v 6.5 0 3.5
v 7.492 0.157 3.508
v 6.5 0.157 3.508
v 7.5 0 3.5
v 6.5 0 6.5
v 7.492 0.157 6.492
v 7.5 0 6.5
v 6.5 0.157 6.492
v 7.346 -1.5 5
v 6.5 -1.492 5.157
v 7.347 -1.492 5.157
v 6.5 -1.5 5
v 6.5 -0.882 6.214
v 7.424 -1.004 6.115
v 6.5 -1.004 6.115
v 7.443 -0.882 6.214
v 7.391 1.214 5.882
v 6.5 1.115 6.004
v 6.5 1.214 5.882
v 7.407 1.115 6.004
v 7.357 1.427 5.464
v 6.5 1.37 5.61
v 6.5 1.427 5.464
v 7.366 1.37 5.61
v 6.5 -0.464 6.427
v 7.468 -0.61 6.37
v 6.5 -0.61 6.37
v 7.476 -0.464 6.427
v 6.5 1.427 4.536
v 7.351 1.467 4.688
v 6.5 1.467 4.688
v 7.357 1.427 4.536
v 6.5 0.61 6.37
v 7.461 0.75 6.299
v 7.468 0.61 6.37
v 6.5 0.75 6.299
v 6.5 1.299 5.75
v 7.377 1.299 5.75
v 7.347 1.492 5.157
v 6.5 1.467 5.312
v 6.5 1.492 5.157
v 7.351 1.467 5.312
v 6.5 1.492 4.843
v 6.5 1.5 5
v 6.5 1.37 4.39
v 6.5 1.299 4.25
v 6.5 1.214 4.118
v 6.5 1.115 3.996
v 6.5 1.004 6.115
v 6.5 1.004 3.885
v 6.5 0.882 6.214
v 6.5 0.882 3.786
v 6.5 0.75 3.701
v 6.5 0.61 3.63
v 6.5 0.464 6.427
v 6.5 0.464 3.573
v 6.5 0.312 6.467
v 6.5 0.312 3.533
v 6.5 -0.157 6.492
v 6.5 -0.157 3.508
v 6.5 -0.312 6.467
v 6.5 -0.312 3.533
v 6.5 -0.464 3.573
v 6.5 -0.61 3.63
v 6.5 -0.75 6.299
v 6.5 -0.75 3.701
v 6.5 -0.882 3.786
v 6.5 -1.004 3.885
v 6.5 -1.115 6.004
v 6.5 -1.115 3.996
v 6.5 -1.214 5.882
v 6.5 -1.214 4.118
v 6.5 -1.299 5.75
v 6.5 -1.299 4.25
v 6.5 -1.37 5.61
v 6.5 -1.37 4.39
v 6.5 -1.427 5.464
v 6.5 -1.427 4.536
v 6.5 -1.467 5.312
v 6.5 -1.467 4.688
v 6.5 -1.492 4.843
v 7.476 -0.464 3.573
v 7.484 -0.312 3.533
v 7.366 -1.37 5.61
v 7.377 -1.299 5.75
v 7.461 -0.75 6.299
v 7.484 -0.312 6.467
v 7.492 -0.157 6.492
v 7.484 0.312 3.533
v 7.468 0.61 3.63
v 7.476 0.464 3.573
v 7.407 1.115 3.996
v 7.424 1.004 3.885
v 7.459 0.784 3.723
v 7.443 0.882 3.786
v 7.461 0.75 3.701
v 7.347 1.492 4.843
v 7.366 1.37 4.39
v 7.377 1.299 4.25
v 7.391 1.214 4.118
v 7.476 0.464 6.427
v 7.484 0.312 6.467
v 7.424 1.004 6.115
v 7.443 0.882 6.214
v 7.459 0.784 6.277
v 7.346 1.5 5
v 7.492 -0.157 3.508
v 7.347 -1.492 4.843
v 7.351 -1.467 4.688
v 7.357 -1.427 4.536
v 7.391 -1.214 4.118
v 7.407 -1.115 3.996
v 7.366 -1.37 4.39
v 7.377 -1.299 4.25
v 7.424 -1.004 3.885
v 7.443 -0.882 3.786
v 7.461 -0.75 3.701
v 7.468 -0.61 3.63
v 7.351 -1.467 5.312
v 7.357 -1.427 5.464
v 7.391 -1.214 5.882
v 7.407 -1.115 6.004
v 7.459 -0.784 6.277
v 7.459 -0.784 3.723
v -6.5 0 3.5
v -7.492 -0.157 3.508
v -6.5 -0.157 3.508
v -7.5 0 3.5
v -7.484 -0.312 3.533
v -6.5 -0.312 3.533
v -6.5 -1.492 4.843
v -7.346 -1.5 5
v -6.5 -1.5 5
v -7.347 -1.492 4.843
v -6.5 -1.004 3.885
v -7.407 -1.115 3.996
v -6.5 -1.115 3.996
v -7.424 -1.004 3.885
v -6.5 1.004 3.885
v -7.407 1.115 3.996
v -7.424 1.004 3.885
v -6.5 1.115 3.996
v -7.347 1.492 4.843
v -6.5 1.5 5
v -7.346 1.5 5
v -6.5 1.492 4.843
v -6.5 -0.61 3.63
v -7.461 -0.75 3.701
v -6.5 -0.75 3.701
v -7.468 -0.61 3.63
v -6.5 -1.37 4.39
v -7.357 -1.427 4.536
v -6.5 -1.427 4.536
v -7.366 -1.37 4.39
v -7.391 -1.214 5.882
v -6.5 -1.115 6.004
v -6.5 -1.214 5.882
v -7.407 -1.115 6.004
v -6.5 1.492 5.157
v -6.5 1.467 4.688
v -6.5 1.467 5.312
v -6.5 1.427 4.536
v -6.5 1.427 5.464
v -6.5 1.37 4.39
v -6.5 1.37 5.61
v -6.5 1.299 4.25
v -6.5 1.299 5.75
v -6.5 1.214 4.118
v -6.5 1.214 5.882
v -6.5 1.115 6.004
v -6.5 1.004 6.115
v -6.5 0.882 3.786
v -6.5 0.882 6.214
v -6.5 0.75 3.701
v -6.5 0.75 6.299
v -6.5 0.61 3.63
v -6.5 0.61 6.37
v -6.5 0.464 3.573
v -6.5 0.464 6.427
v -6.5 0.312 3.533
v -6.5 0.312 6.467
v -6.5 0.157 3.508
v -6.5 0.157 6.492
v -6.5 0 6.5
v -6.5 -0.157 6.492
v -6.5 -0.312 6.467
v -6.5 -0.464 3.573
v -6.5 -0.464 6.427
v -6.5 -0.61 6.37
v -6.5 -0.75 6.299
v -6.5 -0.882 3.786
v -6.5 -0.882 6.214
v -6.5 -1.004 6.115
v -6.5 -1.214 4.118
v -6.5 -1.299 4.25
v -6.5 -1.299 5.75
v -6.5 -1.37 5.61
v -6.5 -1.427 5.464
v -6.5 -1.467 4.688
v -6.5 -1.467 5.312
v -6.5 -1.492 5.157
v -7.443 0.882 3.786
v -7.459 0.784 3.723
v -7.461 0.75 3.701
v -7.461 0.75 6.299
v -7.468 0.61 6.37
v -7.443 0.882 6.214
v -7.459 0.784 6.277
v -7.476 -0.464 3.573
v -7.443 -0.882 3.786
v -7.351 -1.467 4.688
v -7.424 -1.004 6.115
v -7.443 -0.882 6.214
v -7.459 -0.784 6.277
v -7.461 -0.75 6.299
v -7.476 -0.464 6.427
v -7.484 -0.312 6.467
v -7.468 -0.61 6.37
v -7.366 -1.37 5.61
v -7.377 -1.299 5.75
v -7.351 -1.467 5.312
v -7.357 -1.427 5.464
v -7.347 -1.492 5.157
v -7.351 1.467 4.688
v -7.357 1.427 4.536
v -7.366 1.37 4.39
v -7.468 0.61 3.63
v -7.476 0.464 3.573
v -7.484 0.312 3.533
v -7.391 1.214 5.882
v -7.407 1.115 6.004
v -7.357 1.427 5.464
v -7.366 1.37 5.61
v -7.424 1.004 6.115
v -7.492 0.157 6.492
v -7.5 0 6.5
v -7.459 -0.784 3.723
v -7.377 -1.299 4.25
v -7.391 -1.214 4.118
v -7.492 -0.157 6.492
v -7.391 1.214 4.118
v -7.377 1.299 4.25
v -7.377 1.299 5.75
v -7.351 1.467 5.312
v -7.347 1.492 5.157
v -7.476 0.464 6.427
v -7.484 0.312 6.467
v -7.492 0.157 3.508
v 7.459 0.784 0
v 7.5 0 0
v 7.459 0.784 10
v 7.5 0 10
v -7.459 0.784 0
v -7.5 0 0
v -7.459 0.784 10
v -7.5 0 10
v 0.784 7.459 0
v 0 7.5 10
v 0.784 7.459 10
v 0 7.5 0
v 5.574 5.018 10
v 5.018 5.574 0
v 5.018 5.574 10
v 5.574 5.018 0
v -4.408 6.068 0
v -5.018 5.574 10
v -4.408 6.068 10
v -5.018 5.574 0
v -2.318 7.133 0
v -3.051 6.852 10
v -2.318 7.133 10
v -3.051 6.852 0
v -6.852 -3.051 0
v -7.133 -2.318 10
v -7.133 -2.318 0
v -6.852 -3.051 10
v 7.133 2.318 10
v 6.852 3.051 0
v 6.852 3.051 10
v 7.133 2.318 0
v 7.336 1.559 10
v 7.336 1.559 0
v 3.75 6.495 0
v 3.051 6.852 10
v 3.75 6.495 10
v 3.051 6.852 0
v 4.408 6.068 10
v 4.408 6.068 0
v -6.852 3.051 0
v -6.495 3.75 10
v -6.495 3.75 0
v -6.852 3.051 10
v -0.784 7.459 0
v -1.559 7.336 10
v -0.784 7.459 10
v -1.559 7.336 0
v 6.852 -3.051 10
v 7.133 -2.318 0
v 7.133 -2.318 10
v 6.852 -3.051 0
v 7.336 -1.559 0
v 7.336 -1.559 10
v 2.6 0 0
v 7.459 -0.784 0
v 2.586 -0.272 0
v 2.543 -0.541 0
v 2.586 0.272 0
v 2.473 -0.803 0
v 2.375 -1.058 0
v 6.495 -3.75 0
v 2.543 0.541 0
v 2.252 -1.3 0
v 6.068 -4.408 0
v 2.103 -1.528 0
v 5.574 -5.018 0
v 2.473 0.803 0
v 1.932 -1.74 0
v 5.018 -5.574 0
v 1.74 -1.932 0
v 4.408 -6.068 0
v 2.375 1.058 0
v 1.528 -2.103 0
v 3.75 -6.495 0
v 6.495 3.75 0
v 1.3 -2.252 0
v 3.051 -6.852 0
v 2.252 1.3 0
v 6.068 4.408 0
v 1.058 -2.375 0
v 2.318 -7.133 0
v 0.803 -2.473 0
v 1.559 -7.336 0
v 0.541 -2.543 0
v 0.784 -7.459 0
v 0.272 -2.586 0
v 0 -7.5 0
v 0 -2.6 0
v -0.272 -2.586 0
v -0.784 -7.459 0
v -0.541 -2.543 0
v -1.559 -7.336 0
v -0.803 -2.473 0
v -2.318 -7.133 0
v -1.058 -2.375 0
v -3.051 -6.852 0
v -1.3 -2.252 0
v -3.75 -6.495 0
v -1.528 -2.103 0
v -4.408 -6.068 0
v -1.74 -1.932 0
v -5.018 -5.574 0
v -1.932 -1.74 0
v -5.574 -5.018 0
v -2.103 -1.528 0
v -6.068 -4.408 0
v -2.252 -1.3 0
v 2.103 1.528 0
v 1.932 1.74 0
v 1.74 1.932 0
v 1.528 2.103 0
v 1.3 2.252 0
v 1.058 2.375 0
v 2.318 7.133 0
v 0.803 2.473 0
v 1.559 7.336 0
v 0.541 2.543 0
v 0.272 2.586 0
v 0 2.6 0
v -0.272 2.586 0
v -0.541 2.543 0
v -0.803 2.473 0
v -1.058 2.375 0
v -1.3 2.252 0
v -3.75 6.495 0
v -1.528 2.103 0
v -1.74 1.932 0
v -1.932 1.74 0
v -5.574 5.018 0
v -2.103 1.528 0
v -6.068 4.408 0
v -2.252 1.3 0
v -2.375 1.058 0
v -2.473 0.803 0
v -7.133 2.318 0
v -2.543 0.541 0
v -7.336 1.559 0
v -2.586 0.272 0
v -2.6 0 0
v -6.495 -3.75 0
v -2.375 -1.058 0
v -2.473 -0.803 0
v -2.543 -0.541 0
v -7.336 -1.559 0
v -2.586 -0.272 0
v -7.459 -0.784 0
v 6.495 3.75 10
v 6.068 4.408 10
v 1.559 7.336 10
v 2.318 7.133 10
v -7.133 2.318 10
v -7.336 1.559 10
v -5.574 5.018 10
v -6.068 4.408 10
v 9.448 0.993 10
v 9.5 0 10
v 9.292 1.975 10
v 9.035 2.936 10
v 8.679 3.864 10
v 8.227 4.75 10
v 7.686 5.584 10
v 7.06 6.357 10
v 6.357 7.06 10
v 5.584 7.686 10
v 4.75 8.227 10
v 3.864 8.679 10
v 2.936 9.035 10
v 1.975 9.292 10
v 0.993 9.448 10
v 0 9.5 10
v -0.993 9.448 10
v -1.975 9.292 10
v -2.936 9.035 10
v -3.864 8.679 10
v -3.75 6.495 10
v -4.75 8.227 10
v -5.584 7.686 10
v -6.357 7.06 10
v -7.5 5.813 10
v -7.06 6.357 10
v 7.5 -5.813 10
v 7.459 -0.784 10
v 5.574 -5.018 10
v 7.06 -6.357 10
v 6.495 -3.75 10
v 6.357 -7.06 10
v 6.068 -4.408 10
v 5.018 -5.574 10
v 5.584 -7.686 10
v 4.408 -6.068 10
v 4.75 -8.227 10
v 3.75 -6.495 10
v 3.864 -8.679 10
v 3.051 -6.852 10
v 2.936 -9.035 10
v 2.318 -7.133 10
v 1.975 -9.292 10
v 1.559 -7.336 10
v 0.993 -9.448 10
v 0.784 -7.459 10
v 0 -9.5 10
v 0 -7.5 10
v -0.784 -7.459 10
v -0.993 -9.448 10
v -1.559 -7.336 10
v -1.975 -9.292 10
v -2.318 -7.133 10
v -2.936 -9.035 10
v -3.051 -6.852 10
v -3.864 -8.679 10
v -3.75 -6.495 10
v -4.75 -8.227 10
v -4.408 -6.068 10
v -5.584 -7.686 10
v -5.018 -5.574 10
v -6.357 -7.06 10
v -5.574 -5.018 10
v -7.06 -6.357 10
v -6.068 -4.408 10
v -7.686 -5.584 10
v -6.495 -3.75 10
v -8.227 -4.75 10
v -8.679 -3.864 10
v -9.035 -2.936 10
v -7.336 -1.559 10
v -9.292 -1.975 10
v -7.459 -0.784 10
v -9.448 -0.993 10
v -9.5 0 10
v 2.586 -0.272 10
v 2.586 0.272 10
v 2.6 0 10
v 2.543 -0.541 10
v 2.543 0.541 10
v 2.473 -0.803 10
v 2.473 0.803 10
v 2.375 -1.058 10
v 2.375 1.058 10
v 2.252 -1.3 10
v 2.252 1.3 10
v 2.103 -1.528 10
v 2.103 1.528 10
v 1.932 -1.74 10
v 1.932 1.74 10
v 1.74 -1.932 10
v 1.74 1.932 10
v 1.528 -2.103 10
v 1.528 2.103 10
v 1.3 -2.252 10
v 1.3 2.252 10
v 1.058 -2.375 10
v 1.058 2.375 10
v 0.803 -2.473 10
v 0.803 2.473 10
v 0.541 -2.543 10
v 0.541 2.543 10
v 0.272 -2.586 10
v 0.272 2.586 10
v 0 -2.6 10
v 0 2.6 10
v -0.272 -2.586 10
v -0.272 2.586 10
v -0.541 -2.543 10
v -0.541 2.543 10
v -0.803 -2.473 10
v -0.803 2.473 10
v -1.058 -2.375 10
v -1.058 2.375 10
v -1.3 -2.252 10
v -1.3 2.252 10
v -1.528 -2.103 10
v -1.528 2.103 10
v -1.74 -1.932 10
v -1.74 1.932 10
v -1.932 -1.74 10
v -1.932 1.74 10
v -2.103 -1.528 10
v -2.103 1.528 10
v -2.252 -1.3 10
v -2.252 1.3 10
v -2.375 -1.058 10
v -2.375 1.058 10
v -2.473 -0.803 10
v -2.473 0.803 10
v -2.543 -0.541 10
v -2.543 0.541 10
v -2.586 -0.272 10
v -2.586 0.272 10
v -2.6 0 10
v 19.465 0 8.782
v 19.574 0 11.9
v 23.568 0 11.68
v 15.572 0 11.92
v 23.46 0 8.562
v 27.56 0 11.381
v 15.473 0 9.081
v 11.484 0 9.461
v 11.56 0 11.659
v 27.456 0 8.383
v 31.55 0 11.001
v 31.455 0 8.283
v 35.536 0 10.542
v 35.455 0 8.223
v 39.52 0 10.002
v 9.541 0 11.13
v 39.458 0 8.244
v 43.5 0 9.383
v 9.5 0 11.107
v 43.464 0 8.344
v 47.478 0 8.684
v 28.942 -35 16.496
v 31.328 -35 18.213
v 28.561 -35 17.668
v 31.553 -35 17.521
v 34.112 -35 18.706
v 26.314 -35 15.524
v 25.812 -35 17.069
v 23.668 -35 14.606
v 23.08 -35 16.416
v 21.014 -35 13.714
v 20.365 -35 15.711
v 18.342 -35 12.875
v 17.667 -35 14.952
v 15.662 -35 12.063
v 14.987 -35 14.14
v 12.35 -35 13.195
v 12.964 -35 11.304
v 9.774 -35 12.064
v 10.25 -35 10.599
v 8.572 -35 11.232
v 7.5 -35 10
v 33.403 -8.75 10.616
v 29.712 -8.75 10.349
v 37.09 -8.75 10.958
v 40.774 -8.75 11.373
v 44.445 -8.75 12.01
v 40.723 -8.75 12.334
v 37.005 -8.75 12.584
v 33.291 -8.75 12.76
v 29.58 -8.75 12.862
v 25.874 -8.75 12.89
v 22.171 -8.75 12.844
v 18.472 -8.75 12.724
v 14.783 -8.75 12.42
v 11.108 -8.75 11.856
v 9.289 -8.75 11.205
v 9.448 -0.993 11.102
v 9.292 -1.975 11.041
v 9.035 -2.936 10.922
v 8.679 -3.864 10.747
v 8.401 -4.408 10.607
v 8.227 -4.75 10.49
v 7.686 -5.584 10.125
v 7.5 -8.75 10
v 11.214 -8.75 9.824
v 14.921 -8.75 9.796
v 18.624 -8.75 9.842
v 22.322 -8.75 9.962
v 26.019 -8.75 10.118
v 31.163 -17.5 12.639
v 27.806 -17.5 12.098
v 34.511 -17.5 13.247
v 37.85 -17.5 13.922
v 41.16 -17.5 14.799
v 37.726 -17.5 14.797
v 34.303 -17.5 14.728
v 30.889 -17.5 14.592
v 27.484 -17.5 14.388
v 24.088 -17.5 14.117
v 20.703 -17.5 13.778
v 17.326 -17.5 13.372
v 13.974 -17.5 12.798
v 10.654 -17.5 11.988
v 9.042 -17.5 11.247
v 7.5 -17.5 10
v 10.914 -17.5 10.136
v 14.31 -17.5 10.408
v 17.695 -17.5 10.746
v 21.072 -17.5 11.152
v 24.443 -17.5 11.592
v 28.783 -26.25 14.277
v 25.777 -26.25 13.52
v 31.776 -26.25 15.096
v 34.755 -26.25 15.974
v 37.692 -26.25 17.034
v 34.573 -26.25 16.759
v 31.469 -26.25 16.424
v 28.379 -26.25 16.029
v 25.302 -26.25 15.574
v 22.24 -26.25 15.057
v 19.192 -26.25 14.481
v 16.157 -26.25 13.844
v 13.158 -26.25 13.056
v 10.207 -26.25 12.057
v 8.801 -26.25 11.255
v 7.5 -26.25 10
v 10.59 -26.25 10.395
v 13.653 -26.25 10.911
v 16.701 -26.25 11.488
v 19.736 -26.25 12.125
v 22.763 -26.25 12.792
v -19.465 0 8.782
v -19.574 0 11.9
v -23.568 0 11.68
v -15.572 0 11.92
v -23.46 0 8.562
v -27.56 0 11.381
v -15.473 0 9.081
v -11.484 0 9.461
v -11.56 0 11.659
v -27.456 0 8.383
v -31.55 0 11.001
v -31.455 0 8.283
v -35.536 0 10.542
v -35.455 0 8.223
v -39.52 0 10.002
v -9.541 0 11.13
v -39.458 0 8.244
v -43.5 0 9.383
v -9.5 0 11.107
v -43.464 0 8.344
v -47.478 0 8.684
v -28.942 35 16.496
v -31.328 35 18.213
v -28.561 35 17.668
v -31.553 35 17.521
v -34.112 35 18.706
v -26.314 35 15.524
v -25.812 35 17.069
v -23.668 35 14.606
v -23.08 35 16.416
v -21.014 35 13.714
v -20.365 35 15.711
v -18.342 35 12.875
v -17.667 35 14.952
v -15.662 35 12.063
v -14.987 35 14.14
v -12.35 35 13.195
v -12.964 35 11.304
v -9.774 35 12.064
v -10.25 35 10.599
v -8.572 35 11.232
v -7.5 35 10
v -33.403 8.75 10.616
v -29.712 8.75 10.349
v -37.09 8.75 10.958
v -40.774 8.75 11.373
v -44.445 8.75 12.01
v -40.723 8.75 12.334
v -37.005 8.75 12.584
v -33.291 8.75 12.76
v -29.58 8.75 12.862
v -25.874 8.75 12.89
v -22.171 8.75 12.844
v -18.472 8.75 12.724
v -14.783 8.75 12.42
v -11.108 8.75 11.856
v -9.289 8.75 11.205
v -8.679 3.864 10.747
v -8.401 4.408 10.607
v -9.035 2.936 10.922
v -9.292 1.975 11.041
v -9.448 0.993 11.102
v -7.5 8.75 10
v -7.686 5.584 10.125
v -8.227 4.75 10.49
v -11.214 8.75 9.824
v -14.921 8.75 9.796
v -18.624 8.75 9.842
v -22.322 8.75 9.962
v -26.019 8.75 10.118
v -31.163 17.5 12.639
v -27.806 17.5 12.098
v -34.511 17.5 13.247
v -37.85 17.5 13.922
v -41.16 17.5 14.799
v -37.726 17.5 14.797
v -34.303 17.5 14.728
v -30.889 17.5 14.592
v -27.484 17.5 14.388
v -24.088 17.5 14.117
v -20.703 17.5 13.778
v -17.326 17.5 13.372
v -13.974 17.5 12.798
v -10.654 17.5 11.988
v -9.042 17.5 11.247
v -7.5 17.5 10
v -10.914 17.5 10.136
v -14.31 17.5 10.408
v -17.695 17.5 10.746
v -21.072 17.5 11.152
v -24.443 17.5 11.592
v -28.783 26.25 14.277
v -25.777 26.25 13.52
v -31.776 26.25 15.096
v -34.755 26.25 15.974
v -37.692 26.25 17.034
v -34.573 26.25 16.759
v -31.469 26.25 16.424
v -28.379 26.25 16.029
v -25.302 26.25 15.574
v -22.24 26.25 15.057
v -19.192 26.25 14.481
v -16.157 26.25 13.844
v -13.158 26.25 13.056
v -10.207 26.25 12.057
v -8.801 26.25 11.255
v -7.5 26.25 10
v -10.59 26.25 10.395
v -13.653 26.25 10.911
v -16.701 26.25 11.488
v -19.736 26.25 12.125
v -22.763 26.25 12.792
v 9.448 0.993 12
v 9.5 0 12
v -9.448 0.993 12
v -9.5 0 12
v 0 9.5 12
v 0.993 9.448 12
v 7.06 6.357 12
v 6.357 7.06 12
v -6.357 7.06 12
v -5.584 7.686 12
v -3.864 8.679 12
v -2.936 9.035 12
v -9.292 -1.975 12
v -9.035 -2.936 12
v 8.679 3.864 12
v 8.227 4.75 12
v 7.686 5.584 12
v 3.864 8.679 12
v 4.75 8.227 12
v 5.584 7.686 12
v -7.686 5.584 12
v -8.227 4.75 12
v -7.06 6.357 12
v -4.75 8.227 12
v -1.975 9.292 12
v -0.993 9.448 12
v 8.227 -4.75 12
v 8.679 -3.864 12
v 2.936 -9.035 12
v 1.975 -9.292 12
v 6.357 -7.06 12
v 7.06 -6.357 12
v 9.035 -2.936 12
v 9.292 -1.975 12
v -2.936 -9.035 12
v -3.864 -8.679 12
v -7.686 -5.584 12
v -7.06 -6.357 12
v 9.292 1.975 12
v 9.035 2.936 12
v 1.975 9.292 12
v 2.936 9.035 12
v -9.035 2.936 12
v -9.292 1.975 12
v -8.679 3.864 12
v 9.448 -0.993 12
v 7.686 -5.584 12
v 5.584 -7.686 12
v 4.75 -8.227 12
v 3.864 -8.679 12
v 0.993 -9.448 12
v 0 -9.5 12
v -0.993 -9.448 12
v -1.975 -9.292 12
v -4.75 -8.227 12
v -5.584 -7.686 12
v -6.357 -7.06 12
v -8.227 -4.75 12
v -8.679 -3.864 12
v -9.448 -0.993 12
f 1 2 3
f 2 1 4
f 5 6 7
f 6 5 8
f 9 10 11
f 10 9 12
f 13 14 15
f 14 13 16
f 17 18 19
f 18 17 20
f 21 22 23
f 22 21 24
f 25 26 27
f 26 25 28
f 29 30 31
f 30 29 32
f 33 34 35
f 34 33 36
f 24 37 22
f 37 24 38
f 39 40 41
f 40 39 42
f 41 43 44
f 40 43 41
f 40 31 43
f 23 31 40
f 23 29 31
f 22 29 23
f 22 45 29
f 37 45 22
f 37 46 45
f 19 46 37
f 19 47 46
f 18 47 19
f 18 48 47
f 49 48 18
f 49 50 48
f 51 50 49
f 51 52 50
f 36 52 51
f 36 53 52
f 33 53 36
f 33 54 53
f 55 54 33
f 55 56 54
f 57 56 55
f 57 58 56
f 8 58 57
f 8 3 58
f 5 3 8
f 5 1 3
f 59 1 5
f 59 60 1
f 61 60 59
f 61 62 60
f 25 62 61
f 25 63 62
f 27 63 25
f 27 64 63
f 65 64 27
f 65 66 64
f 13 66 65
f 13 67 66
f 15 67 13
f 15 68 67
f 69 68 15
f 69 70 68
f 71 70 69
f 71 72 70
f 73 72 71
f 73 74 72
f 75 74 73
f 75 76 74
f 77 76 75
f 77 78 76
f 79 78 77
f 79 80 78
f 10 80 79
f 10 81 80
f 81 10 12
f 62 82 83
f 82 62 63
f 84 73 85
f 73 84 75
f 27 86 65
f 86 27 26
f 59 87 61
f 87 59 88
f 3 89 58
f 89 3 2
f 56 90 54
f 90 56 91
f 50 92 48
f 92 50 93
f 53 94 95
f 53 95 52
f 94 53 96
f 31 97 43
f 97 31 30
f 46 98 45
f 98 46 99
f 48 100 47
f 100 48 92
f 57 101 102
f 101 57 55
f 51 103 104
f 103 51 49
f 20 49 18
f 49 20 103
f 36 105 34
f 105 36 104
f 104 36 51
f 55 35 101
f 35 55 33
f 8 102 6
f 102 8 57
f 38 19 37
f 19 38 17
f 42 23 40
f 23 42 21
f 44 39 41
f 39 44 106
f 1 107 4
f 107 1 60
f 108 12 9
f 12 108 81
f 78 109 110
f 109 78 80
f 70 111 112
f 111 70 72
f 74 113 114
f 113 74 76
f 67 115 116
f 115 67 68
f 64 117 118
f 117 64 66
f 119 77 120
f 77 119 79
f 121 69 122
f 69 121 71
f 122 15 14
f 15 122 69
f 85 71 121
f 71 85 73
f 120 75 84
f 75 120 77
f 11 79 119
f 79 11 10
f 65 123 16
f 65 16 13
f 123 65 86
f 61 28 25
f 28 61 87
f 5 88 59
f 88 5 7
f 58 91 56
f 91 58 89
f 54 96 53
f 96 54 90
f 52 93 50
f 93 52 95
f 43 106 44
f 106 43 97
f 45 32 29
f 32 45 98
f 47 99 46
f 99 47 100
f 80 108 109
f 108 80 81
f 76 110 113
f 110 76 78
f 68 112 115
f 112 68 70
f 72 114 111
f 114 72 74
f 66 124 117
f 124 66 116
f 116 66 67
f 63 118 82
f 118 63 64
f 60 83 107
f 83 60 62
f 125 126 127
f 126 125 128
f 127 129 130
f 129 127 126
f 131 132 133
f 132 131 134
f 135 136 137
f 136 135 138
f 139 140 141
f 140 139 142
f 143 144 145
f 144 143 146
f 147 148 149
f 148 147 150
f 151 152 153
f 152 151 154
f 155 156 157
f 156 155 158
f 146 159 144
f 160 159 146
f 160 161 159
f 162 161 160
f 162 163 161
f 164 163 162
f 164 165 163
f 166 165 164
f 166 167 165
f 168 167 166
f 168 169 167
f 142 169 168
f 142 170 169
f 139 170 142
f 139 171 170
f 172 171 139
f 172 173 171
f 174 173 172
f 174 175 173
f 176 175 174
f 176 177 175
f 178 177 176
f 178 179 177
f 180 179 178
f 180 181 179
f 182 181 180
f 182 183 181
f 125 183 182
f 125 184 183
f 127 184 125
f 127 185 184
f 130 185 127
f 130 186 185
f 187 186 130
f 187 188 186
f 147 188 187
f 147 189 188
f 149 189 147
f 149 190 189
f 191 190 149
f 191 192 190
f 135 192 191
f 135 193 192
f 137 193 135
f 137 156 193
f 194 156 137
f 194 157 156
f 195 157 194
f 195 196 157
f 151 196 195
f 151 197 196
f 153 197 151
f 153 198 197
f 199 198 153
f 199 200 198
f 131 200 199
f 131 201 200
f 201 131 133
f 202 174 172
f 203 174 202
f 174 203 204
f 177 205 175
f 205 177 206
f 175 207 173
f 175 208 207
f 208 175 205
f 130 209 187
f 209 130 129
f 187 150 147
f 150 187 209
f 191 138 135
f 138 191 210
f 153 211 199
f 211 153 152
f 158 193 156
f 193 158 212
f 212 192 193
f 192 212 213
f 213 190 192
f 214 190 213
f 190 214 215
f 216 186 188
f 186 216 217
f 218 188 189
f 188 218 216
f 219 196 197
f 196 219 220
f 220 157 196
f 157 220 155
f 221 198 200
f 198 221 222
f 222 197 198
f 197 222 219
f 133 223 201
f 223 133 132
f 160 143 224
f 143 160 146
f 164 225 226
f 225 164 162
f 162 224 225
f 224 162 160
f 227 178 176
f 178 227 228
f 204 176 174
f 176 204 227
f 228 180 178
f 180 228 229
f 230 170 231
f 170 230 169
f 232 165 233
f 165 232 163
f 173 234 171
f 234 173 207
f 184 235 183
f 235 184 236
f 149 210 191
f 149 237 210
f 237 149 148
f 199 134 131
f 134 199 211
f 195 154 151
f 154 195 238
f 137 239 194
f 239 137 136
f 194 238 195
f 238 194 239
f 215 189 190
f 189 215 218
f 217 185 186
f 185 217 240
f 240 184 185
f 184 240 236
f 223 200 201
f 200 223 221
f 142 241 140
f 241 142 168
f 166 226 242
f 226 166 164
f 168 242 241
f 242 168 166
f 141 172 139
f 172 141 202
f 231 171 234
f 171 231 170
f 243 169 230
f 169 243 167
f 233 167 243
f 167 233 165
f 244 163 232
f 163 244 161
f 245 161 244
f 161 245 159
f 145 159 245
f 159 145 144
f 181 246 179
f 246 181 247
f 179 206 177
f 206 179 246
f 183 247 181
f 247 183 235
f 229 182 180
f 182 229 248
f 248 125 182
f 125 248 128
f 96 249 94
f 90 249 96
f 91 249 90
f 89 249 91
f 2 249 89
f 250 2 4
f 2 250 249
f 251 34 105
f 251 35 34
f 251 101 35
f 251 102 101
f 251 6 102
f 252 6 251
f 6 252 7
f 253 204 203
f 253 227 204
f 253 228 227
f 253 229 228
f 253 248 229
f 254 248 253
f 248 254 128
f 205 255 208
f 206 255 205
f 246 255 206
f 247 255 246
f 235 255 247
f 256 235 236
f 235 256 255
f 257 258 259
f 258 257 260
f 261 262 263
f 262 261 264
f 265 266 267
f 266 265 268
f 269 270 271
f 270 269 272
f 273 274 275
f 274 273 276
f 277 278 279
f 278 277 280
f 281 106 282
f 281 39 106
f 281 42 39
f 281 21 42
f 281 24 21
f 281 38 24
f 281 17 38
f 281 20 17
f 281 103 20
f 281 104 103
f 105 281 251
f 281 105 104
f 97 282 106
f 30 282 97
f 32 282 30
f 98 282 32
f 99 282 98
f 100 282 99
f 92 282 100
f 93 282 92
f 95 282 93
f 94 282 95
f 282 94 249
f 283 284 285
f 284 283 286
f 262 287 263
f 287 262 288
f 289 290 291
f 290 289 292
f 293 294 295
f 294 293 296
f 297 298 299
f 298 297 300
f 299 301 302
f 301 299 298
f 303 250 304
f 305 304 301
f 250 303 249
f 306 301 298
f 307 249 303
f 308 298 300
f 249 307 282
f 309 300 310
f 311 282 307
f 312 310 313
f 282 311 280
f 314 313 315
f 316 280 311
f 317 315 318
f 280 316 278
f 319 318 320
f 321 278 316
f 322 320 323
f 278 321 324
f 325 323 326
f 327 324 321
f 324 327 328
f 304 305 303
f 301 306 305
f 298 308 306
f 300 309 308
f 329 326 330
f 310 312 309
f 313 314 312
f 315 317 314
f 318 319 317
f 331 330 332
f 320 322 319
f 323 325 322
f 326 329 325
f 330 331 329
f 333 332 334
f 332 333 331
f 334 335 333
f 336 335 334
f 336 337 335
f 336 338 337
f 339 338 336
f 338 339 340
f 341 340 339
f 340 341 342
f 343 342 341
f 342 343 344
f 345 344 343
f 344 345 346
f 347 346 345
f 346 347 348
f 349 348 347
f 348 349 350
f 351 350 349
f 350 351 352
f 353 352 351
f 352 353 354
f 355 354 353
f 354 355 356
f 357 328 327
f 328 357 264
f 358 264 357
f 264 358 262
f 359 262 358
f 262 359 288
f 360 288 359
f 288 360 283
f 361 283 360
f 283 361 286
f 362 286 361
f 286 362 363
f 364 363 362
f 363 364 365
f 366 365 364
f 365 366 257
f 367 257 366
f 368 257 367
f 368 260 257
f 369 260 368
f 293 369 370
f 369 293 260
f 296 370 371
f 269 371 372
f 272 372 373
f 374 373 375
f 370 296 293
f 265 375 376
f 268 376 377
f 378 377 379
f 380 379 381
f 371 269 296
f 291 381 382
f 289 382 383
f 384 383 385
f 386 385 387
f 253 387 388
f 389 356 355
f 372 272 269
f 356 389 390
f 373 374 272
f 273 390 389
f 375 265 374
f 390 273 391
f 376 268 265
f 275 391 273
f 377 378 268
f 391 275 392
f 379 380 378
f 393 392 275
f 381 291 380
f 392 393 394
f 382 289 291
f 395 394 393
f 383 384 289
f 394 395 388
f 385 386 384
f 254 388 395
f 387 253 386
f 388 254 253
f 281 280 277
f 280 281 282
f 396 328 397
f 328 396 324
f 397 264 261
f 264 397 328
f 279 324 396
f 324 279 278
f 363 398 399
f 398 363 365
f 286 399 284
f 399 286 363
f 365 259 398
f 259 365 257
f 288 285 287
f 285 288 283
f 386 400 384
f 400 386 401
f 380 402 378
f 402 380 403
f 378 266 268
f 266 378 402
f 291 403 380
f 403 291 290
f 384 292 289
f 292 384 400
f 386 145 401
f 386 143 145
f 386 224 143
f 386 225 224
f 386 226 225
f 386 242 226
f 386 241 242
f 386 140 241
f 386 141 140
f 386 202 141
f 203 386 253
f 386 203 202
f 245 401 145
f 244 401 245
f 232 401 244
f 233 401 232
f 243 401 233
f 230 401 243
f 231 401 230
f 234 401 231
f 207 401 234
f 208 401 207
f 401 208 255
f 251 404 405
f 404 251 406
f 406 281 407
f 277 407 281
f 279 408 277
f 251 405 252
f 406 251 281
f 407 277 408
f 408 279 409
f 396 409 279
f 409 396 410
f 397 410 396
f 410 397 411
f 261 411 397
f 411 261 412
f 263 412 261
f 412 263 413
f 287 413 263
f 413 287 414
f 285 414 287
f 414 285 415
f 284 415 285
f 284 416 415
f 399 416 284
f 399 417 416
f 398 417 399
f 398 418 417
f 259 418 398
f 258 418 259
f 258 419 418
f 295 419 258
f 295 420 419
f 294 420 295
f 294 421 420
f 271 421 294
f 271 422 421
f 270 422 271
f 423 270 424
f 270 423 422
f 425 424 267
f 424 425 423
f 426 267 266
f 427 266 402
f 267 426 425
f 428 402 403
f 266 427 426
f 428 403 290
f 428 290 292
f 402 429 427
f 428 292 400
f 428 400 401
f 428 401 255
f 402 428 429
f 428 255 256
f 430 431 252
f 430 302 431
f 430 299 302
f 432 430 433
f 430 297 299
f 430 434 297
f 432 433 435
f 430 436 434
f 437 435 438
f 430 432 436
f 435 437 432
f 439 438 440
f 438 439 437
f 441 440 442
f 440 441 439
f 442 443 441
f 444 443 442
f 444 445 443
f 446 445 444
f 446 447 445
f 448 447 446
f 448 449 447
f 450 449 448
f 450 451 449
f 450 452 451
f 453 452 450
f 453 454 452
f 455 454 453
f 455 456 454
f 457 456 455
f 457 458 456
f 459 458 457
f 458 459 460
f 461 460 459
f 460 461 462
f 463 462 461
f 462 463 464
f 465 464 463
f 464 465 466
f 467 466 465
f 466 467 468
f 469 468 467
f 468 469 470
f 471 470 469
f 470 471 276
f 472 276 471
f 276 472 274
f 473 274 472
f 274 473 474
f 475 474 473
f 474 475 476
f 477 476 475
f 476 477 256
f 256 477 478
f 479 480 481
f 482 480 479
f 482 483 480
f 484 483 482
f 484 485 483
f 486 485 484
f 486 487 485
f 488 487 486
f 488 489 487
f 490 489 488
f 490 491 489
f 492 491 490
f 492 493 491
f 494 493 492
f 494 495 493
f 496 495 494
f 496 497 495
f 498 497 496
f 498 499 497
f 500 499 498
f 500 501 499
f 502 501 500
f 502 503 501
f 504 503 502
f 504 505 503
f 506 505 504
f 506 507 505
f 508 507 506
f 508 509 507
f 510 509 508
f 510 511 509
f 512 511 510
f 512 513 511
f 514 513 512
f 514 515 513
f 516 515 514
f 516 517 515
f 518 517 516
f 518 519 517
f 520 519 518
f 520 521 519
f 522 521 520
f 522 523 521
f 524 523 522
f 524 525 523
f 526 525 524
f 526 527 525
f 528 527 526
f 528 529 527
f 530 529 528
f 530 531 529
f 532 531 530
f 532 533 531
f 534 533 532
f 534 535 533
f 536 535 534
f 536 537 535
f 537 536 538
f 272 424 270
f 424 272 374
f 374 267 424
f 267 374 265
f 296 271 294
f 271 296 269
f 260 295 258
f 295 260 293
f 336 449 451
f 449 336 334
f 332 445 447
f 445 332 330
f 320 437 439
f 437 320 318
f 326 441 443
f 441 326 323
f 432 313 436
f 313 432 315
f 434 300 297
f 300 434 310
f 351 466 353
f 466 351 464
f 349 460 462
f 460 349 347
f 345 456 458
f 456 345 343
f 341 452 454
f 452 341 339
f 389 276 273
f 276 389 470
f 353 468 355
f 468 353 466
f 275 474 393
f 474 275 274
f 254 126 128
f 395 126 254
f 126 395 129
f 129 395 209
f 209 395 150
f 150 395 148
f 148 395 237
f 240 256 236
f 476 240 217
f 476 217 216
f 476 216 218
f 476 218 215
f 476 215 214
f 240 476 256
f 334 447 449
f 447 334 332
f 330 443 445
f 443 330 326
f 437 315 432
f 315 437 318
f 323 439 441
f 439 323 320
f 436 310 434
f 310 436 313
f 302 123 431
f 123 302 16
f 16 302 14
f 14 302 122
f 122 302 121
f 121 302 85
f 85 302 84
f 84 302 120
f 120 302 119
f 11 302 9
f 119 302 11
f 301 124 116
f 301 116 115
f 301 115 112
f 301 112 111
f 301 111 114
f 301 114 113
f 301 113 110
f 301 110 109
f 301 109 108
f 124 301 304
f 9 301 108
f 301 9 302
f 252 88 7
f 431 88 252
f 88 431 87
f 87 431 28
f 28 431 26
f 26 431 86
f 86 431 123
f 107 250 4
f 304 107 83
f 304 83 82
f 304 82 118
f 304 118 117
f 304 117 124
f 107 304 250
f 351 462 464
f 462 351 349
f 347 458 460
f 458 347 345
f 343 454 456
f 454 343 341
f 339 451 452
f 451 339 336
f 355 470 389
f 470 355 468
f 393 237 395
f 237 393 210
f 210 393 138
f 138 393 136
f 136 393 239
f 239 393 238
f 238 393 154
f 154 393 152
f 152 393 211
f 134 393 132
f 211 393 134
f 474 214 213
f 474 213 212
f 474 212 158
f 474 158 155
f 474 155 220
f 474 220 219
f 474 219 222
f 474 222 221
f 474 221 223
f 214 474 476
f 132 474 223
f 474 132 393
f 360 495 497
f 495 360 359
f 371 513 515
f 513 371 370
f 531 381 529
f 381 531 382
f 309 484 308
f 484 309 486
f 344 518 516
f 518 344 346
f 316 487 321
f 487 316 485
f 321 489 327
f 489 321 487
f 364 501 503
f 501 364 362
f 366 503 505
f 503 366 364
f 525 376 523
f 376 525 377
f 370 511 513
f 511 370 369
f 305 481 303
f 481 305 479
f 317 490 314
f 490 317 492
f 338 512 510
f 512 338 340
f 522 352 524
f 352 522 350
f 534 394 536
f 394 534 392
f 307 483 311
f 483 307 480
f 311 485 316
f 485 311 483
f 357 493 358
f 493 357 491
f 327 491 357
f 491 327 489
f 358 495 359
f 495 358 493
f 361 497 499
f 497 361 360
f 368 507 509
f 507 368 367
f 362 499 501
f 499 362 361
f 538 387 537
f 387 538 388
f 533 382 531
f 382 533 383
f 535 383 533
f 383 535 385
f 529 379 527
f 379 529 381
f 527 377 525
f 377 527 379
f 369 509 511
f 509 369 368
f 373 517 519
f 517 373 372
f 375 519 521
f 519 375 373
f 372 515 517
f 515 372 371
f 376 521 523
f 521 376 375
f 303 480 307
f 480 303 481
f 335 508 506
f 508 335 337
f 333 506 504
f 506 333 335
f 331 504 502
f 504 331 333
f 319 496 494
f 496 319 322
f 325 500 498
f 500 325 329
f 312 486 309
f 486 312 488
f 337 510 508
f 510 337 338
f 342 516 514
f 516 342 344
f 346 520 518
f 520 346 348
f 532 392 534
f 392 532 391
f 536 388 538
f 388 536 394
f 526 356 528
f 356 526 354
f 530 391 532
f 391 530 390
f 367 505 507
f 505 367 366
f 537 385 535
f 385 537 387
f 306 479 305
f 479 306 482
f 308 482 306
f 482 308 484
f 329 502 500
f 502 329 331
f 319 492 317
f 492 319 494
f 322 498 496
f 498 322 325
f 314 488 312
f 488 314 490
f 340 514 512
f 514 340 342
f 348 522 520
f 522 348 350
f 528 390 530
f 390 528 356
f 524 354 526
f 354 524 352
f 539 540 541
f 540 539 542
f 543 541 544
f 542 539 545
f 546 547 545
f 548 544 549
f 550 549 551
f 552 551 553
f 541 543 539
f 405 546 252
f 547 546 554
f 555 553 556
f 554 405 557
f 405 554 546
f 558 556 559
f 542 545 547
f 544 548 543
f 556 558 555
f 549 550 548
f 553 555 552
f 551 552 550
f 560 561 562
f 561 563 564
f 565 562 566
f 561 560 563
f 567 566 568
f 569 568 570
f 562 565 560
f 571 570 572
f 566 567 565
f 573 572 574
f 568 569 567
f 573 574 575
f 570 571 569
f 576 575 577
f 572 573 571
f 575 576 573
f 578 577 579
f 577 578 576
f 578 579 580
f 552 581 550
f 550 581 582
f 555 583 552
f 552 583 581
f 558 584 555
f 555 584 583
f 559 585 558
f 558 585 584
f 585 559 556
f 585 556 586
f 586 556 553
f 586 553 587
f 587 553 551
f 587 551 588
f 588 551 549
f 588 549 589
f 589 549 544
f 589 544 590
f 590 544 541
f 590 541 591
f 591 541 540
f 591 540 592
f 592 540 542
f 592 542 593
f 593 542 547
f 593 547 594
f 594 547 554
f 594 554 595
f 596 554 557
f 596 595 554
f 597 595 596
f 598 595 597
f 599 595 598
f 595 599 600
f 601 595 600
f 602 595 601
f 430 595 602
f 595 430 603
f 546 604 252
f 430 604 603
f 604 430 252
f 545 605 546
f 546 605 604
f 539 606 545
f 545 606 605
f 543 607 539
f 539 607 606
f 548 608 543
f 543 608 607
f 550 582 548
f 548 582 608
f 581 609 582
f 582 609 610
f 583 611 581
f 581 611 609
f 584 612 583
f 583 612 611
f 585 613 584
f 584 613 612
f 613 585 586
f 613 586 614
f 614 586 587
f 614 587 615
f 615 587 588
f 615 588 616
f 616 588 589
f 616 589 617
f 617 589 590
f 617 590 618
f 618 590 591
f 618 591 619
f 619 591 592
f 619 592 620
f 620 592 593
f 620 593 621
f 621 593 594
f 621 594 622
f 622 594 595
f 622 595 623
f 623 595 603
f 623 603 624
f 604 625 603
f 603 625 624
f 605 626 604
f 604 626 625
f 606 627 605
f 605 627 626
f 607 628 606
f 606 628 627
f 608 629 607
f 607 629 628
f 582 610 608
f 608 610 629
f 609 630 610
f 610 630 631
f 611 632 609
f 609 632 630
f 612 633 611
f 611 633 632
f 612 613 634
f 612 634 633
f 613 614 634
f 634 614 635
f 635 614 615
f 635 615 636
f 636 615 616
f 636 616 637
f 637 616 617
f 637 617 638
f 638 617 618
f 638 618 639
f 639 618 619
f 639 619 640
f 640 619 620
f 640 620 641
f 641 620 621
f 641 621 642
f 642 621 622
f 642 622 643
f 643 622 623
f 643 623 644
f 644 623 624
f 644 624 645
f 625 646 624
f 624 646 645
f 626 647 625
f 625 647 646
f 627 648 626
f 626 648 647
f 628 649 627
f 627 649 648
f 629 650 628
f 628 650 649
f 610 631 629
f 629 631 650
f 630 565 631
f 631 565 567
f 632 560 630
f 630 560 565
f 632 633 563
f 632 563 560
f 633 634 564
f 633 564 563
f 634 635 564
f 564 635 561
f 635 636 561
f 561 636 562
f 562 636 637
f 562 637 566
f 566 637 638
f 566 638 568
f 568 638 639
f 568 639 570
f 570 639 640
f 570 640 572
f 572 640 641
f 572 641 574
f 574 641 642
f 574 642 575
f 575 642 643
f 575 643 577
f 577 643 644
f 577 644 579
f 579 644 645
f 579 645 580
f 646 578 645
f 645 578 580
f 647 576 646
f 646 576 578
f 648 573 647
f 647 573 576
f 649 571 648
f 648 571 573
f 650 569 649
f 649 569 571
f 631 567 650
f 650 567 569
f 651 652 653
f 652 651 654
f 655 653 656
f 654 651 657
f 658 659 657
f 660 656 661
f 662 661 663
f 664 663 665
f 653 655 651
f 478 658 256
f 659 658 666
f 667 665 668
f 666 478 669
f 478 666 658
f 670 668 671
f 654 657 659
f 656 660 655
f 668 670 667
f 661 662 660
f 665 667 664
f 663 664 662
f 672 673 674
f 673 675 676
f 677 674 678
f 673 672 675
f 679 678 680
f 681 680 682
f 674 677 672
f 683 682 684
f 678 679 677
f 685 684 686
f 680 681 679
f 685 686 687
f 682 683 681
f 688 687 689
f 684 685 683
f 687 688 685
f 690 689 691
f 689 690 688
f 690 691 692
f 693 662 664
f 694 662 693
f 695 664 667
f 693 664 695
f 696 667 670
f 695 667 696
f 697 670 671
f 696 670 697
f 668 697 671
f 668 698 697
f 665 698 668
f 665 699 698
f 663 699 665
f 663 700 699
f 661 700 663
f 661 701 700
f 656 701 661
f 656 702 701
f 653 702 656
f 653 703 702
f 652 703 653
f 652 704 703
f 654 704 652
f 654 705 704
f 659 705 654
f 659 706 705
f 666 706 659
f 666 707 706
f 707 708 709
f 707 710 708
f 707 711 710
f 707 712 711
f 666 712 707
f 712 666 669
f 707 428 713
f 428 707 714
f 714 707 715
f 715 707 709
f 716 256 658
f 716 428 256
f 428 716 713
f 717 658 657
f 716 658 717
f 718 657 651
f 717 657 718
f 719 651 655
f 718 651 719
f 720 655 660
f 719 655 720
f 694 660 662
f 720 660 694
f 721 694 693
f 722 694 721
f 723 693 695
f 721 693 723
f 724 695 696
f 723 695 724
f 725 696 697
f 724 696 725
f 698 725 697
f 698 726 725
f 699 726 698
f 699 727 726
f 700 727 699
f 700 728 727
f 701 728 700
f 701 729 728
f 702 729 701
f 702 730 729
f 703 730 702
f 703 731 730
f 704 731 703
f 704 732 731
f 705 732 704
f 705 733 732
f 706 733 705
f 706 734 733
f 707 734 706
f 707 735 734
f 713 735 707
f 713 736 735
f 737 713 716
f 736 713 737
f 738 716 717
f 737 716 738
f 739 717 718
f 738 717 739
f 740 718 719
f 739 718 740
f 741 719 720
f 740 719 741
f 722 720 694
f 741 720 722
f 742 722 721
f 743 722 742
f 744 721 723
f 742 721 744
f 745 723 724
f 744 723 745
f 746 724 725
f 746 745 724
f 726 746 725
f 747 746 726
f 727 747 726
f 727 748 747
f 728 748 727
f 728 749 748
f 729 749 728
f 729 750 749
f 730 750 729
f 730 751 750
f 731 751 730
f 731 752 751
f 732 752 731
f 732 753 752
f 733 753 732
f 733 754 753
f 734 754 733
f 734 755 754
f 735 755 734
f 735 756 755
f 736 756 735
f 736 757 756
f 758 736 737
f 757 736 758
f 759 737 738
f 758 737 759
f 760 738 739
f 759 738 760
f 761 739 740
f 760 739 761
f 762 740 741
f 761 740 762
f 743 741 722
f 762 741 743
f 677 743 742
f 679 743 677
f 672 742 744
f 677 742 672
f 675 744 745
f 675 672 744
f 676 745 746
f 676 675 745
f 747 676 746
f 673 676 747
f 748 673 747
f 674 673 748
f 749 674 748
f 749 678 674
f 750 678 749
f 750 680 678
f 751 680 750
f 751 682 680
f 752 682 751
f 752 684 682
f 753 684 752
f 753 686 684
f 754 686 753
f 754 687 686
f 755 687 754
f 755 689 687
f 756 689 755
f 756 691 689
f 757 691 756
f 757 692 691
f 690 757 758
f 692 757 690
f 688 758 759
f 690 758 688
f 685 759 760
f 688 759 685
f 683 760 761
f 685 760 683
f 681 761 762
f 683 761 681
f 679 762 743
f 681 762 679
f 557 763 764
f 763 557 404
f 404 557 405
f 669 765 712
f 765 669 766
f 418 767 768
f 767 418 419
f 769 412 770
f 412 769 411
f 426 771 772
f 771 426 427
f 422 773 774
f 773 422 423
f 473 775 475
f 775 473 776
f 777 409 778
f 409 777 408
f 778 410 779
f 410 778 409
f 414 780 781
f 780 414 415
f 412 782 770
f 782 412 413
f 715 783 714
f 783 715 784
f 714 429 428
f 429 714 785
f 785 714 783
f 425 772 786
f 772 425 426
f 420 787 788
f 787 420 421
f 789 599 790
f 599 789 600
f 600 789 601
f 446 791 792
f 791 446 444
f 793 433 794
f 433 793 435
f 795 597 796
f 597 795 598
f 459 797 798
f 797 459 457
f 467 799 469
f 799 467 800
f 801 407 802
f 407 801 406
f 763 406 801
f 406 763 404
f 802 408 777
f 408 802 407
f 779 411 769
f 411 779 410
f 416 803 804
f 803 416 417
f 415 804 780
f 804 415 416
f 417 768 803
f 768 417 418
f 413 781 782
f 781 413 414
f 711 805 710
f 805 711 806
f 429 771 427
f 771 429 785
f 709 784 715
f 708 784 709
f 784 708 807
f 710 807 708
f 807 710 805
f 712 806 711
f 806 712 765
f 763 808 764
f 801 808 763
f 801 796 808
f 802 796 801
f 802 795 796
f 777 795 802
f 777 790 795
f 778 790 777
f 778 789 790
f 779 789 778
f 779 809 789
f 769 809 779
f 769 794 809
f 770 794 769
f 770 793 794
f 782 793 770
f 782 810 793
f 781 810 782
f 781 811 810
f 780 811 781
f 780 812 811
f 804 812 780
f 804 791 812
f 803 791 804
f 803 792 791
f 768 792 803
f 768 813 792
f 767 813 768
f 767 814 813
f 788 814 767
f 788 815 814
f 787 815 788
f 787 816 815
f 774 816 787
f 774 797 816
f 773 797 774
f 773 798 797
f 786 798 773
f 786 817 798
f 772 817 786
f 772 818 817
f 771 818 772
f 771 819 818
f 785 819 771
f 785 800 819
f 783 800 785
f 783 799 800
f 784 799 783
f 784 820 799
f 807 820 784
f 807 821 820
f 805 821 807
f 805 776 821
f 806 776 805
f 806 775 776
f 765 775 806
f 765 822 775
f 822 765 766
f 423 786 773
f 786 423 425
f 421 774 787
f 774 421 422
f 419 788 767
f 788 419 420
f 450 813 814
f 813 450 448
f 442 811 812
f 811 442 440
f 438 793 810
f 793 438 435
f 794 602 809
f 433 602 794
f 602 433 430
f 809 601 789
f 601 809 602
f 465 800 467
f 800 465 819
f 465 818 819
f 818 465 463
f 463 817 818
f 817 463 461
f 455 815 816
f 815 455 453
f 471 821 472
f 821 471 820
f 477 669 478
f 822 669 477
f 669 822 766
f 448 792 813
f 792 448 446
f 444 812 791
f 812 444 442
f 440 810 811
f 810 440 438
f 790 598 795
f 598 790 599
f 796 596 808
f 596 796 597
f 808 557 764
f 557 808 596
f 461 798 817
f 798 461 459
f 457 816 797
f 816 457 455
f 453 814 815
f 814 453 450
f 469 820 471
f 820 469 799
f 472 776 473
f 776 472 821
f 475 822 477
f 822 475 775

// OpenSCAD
/*
 * COMPLETE MOTOR + IMPELLER ASSEMBLY
 * For CFD fluid testing and visualization
 * 
 * This model includes:
 *   - Brushless motor (2204-2206 size)
 *   - Motor shaft (5mm)
 *   - Impeller hub
 *   - 3 impeller variants (bladeless, AI-blades, hybrid)
 *   - Mounting plate
 * 
 * Usage:
 *   - Render full assembly: F6
 *   - Export for CFD: Set EXPORT_MODE = "impeller_only"
 *   - Change design: Set IMPELLER_TYPE = "bladeless" | "bladed" | "hybrid"
 */

// ============================================================================
// CONFIGURATION PARAMETERS (AI-Optimizable)
// ============================================================================

// General Settings
$fn = 60;  // Resolution for CFD export (increase to 100 for final)

// Export Mode
EXPORT_MODE = "impeller_only";  // Options: "full_assembly", "impeller_only", "motor_only"

// Impeller Type
IMPELLER_TYPE = "bladed";  // Options: "bladeless", "bladed", "hybrid"

// Motor Specifications (2204-2206 brushless)
MOTOR_DIAMETER = 28;         // mm
MOTOR_HEIGHT = 25;           // mm
MOTOR_SHAFT_DIAMETER = 5;    // mm (standard)
MOTOR_SHAFT_LENGTH = 15;     // mm (extends above motor)
MOTOR_MOUNT_PATTERN = 16;    // mm (16x16 or 19x19 common)
MOTOR_SCREW_DIAMETER = 3;    // M3 screws

// Impeller Parameters - BLADELESS
BLADELESS_OUTER_DIAMETER = 90;    // mm
BLADELESS_AIR_GAP = 0.8;          // mm (optimize: 0.6-1.2)
BLADELESS_THROAT_RATIO = 0.72;    // (optimize: 0.65-0.80)
BLADELESS_EXPANSION_ANGLE = 18;   // degrees (optimize: 12-25)
BLADELESS_RING_THICKNESS = 3;     // mm (optimize: 2-4)
BLADELESS_HEIGHT = 24;            // mm

// Impeller Parameters - BLADED
BLADED_DIAMETER = 85;
BLADED_HUB_DIAMETER = 15;         // mm (optimize: 12-20)
BLADED_BLADE_COUNT = 2;
BLADED_ROOT_CHORD = 40;
BLADED_TIP_CHORD_RATIO = 0.7;    // (optimize: 0.6-0.8)
BLADED_BLADE_THICKNESS = 2;       // mm (optimize: 1.5-3)
BLADED_BLADE_TWIST = -20;
BLADED_ATTACK_ANGLE = -2;
BLADED_BLADE_HEIGHT = 12;         // mm (optimize: 10-15)

// Hub Parameters
HUB_DIAMETER = 15;
HUB_HEIGHT = 10;
HUB_SET_SCREW_DIAMETER = 3;  // M3 set screw

// Mounting Plate
PLATE_SIZE = 50;
PLATE_THICKNESS = 3;

// ============================================================================
// MOTOR MODEL
// ============================================================================

module brushless_motor_2204() {
    color("DarkSlateGray") {
        // Motor can (bell)
        difference() {
            cylinder(h=MOTOR_HEIGHT, d=MOTOR_DIAMETER);
            
            // Hollow inside (weight reduction visualization)
            translate([0, 0, -0.5])
                cylinder(h=MOTOR_HEIGHT - 5, d=MOTOR_DIAMETER - 4);
            
            // Mounting holes
            for(i = [0:3]) {
                rotate([0, 0, i * 90])
                    translate([MOTOR_MOUNT_PATTERN/2, 0, MOTOR_HEIGHT/2])
                        rotate([90, 0, 0])
                            cylinder(h=MOTOR_DIAMETER, d=MOTOR_SCREW_DIAMETER, center=true);
            }
        }
        
        // Motor base
        translate([0, 0, -3])
            cylinder(h=3, d=MOTOR_DIAMETER - 2);
    }
    
    // Motor shaft
    color("Silver")
        translate([0, 0, MOTOR_HEIGHT])
            cylinder(h=MOTOR_SHAFT_LENGTH, d=MOTOR_SHAFT_DIAMETER);
    
    // Shaft tip (for hub attachment)
    color("Silver")
        translate([0, 0, MOTOR_HEIGHT + MOTOR_SHAFT_LENGTH])
            cylinder(h=2, d=MOTOR_SHAFT_DIAMETER - 0.5);
}

// ============================================================================
// IMPELLER HUB
// ============================================================================

module impeller_hub() {
    color("Gray")
    difference() {
        // Hub body
        cylinder(h=HUB_HEIGHT, d=HUB_DIAMETER);
        
        // Shaft hole (5mm + 0.2mm clearance)
        translate([0, 0, -0.5])
            cylinder(h=HUB_HEIGHT + 1, d=MOTOR_SHAFT_DIAMETER + 0.2);
        
        // Set screw holes (2x for balance)
        for(i = [0:1]) {
            rotate([0, 0, i * 180])
                translate([HUB_DIAMETER/2 - 1, 0, HUB_HEIGHT/2])
                    rotate([0, 90, 0])
                        cylinder(h=5, d=HUB_SET_SCREW_DIAMETER);
        }
    }
}

// ============================================================================
// BLADELESS IMPELLER (Dyson-style)
// ============================================================================

module bladeless_impeller() {
    outer_r = BLADELESS_OUTER_DIAMETER / 2;
    throat_r = outer_r * BLADELESS_THROAT_RATIO;
    gap = BLADELESS_AIR_GAP;
    
    color("SkyBlue", 0.7)
    difference() {
        // Outer ring
        rotate_extrude()
            translate([outer_r - BLADELESS_RING_THICKNESS/2, BLADELESS_HEIGHT/2, 0])
                circle(d=BLADELESS_RING_THICKNESS + BLADELESS_HEIGHT);
        
        // Inner air gap (critical for Coanda effect)
        rotate_extrude()
            translate([outer_r - gap - BLADELESS_RING_THICKNESS/2, BLADELESS_HEIGHT/2, 0])
                circle(d=BLADELESS_RING_THICKNESS + BLADELESS_HEIGHT - 2*gap);
    }
    
    // Base plate (connects to hub)
    color("SkyBlue", 0.7)
    translate([0, 0, -2])
        difference() {
            cylinder(h=2, d=outer_r * 2);
            translate([0, 0, -0.5])
                cylinder(h=3, d=HUB_DIAMETER + 1);
        }
    
    // Air inlet (bell-shaped for smooth flow)
    color("SkyBlue", 0.7)
    translate([0, 0, -2]) {
        difference() {
            cylinder(h=15, d1=throat_r * 2, d2=outer_r * 1.8);
            translate([0, 0, -0.5])
                cylinder(h=16, d1=throat_r * 2 - 3, d2=outer_r * 1.8 - 3);
        }
    }
}

// ============================================================================
// AI-OPTIMIZED BLADED IMPELLER (NACA 2412 profile)
// ============================================================================

module naca_2412_blade(chord, height, twist_angle, attack_angle) {
    // Simplified NACA 2412 airfoil profile
    // Using parametric approximation for 3D printing
    
    color("LightSteelBlue", 0.8)
    linear_extrude(height=height, twist=twist_angle, scale=BLADED_TIP_CHORD_RATIO) {
        rotate([0, 0, attack_angle])
        polygon([
            // Upper surface (cambered)
            [0, 0],
            [chord * 0.05, chord * 0.03],
            [chord * 0.1, chord * 0.045],
            [chord * 0.2, chord * 0.055],
            [chord * 0.3, chord * 0.058],
            [chord * 0.4, chord * 0.056],
            [chord * 0.5, chord * 0.052],
            [chord * 0.6, chord * 0.046],
            [chord * 0.7, chord * 0.038],
            [chord * 0.8, chord * 0.028],
            [chord * 0.9, chord * 0.016],
            [chord * 1.0, chord * 0.002],
            // Lower surface (less cambered)
            [chord * 0.9, -chord * 0.010],
            [chord * 0.8, -chord * 0.016],
            [chord * 0.7, -chord * 0.020],
            [chord * 0.6, -chord * 0.022],
            [chord * 0.5, -chord * 0.023],
            [chord * 0.4, -chord * 0.022],
            [chord * 0.3, -chord * 0.020],
            [chord * 0.2, -chord * 0.016],
            [chord * 0.1, -chord * 0.010],
            [chord * 0.05, -chord * 0.005],
        ]);
    }
}

module bladed_impeller() {
    // Blades
    for(i = [0 : BLADED_BLADE_COUNT - 1]) {
        rotate([0, 0, i * (360 / BLADED_BLADE_COUNT)])
            translate([BLADED_HUB_DIAMETER/2, 0, 0])
                rotate([90, 0, 0])
                    naca_2412_blade(
                        BLADED_ROOT_CHORD, 
                        (BLADED_DIAMETER - BLADED_HUB_DIAMETER) / 2,
                        BLADED_BLADE_TWIST,
                        BLADED_ATTACK_ANGLE
                    );
    }
    
    // Hub disk (connects blades)
    color("LightSteelBlue", 0.8)
    cylinder(h=2, d=BLADED_HUB_DIAMETER + 4);
}

// ============================================================================
// HYBRID IMPELLER (Blades inside bladeless ring)
// ============================================================================

module hybrid_impeller() {
    // Outer bladeless ring
    bladeless_impeller();
    
    // Inner bladed impeller (scaled down to fit)
    scale([0.85, 0.85, 1])
        bladed_impeller();
}

// ============================================================================
// MOUNTING PLATE
// ============================================================================

module mounting_plate() {
    color("DimGray")
    difference() {
        // Base plate
        translate([-PLATE_SIZE/2, -PLATE_SIZE/2, 0])
            cube([PLATE_SIZE, PLATE_SIZE, PLATE_THICKNESS]);
        
        // Center hole for motor shaft
        translate([0, 0, -0.5])
            cylinder(h=PLATE_THICKNESS + 1, d=MOTOR_DIAMETER + 2);
        
        // Motor mounting holes
        for(i = [0:3]) {
            rotate([0, 0, i * 90])
                translate([MOTOR_MOUNT_PATTERN/2, 0, -0.5])
                    cylinder(h=PLATE_THICKNESS + 1, d=MOTOR_SCREW_DIAMETER);
        }
    }
}

// ============================================================================
// COMPLETE ASSEMBLY
// ============================================================================

module complete_assembly() {
    // Mounting plate (bottom)
    translate([0, 0, -PLATE_THICKNESS])
        mounting_plate();
    
    // Motor
    translate([0, 0, 0])
        brushless_motor_2204();
    
    // Hub (on shaft)
    translate([0, 0, MOTOR_HEIGHT + MOTOR_SHAFT_LENGTH - 2])
        impeller_hub();
    
    // Impeller (on hub)
    translate([0, 0, MOTOR_HEIGHT + MOTOR_SHAFT_LENGTH + HUB_HEIGHT]) {
        if (IMPELLER_TYPE == "bladeless") {
            bladeless_impeller();
        } else if (IMPELLER_TYPE == "bladed") {
            bladed_impeller();
        } else if (IMPELLER_TYPE == "hybrid") {
            hybrid_impeller();
        }
    }
}

// ============================================================================
// RENDER BASED ON EXPORT MODE
// ============================================================================

if (EXPORT_MODE == "full_assembly") {
    complete_assembly();
} 
else if (EXPORT_MODE == "impeller_only") {
    // For CFD testing - impeller + hub only
    impeller_hub();
    translate([0, 0, HUB_HEIGHT]) {
        if (IMPELLER_TYPE == "bladeless") {
            bladeless_impeller();
        } else if (IMPELLER_TYPE == "bladed") {
            bladed_impeller();
        } else if (IMPELLER_TYPE == "hybrid") {
            hybrid_impeller();
        }
    }
}
else if (EXPORT_MODE == "motor_only") {
    brushless_motor_2204();
}

// ============================================================================
// ANNOTATIONS FOR VISUALIZATION
// ============================================================================

// Uncomment to show dimensions
/*
color("Red", 0.3)
translate([BLADED_DIAMETER/2 + 10, 0, 20])
    text(str("Ø", BLADED_DIAMETER, "mm"), size=5, halign="left");

color("Green", 0.3)
translate([0, BLADED_DIAMETER/2 + 10, 20])
    text(str(BLADED_BLADE_COUNT, " blades"), size=5, halign="center");
*/

// ============================================================================
// EXPORT NOTES
// ============================================================================

/*
 * TO EXPORT FOR CFD TESTING:
 * 
 * 1. Set EXPORT_MODE = "impeller_only"
 * 2. Set IMPELLER_TYPE = "bladeless" (or "bladed" or "hybrid")
 * 3. Press F6 to render
 * 4. File → Export → Export as STL
 * 5. Use filename: impeller_bladeless_fn60.stl
 * 
 * FOR OPTIMIZATION:
 * - Modify parameters at top (marked with "optimize:")
 * - Re-render and export
 * - Upload to SimScale for CFD
 * - Compare results
 * 
 * RECOMMENDED CFD SETTINGS:
 * - Solver: k-omega SST
 * - RPM: 5000, 7000, 9000
 * - Mesh: 3-5M cells
 * - Boundary: Rotating zone on impeller
 */
